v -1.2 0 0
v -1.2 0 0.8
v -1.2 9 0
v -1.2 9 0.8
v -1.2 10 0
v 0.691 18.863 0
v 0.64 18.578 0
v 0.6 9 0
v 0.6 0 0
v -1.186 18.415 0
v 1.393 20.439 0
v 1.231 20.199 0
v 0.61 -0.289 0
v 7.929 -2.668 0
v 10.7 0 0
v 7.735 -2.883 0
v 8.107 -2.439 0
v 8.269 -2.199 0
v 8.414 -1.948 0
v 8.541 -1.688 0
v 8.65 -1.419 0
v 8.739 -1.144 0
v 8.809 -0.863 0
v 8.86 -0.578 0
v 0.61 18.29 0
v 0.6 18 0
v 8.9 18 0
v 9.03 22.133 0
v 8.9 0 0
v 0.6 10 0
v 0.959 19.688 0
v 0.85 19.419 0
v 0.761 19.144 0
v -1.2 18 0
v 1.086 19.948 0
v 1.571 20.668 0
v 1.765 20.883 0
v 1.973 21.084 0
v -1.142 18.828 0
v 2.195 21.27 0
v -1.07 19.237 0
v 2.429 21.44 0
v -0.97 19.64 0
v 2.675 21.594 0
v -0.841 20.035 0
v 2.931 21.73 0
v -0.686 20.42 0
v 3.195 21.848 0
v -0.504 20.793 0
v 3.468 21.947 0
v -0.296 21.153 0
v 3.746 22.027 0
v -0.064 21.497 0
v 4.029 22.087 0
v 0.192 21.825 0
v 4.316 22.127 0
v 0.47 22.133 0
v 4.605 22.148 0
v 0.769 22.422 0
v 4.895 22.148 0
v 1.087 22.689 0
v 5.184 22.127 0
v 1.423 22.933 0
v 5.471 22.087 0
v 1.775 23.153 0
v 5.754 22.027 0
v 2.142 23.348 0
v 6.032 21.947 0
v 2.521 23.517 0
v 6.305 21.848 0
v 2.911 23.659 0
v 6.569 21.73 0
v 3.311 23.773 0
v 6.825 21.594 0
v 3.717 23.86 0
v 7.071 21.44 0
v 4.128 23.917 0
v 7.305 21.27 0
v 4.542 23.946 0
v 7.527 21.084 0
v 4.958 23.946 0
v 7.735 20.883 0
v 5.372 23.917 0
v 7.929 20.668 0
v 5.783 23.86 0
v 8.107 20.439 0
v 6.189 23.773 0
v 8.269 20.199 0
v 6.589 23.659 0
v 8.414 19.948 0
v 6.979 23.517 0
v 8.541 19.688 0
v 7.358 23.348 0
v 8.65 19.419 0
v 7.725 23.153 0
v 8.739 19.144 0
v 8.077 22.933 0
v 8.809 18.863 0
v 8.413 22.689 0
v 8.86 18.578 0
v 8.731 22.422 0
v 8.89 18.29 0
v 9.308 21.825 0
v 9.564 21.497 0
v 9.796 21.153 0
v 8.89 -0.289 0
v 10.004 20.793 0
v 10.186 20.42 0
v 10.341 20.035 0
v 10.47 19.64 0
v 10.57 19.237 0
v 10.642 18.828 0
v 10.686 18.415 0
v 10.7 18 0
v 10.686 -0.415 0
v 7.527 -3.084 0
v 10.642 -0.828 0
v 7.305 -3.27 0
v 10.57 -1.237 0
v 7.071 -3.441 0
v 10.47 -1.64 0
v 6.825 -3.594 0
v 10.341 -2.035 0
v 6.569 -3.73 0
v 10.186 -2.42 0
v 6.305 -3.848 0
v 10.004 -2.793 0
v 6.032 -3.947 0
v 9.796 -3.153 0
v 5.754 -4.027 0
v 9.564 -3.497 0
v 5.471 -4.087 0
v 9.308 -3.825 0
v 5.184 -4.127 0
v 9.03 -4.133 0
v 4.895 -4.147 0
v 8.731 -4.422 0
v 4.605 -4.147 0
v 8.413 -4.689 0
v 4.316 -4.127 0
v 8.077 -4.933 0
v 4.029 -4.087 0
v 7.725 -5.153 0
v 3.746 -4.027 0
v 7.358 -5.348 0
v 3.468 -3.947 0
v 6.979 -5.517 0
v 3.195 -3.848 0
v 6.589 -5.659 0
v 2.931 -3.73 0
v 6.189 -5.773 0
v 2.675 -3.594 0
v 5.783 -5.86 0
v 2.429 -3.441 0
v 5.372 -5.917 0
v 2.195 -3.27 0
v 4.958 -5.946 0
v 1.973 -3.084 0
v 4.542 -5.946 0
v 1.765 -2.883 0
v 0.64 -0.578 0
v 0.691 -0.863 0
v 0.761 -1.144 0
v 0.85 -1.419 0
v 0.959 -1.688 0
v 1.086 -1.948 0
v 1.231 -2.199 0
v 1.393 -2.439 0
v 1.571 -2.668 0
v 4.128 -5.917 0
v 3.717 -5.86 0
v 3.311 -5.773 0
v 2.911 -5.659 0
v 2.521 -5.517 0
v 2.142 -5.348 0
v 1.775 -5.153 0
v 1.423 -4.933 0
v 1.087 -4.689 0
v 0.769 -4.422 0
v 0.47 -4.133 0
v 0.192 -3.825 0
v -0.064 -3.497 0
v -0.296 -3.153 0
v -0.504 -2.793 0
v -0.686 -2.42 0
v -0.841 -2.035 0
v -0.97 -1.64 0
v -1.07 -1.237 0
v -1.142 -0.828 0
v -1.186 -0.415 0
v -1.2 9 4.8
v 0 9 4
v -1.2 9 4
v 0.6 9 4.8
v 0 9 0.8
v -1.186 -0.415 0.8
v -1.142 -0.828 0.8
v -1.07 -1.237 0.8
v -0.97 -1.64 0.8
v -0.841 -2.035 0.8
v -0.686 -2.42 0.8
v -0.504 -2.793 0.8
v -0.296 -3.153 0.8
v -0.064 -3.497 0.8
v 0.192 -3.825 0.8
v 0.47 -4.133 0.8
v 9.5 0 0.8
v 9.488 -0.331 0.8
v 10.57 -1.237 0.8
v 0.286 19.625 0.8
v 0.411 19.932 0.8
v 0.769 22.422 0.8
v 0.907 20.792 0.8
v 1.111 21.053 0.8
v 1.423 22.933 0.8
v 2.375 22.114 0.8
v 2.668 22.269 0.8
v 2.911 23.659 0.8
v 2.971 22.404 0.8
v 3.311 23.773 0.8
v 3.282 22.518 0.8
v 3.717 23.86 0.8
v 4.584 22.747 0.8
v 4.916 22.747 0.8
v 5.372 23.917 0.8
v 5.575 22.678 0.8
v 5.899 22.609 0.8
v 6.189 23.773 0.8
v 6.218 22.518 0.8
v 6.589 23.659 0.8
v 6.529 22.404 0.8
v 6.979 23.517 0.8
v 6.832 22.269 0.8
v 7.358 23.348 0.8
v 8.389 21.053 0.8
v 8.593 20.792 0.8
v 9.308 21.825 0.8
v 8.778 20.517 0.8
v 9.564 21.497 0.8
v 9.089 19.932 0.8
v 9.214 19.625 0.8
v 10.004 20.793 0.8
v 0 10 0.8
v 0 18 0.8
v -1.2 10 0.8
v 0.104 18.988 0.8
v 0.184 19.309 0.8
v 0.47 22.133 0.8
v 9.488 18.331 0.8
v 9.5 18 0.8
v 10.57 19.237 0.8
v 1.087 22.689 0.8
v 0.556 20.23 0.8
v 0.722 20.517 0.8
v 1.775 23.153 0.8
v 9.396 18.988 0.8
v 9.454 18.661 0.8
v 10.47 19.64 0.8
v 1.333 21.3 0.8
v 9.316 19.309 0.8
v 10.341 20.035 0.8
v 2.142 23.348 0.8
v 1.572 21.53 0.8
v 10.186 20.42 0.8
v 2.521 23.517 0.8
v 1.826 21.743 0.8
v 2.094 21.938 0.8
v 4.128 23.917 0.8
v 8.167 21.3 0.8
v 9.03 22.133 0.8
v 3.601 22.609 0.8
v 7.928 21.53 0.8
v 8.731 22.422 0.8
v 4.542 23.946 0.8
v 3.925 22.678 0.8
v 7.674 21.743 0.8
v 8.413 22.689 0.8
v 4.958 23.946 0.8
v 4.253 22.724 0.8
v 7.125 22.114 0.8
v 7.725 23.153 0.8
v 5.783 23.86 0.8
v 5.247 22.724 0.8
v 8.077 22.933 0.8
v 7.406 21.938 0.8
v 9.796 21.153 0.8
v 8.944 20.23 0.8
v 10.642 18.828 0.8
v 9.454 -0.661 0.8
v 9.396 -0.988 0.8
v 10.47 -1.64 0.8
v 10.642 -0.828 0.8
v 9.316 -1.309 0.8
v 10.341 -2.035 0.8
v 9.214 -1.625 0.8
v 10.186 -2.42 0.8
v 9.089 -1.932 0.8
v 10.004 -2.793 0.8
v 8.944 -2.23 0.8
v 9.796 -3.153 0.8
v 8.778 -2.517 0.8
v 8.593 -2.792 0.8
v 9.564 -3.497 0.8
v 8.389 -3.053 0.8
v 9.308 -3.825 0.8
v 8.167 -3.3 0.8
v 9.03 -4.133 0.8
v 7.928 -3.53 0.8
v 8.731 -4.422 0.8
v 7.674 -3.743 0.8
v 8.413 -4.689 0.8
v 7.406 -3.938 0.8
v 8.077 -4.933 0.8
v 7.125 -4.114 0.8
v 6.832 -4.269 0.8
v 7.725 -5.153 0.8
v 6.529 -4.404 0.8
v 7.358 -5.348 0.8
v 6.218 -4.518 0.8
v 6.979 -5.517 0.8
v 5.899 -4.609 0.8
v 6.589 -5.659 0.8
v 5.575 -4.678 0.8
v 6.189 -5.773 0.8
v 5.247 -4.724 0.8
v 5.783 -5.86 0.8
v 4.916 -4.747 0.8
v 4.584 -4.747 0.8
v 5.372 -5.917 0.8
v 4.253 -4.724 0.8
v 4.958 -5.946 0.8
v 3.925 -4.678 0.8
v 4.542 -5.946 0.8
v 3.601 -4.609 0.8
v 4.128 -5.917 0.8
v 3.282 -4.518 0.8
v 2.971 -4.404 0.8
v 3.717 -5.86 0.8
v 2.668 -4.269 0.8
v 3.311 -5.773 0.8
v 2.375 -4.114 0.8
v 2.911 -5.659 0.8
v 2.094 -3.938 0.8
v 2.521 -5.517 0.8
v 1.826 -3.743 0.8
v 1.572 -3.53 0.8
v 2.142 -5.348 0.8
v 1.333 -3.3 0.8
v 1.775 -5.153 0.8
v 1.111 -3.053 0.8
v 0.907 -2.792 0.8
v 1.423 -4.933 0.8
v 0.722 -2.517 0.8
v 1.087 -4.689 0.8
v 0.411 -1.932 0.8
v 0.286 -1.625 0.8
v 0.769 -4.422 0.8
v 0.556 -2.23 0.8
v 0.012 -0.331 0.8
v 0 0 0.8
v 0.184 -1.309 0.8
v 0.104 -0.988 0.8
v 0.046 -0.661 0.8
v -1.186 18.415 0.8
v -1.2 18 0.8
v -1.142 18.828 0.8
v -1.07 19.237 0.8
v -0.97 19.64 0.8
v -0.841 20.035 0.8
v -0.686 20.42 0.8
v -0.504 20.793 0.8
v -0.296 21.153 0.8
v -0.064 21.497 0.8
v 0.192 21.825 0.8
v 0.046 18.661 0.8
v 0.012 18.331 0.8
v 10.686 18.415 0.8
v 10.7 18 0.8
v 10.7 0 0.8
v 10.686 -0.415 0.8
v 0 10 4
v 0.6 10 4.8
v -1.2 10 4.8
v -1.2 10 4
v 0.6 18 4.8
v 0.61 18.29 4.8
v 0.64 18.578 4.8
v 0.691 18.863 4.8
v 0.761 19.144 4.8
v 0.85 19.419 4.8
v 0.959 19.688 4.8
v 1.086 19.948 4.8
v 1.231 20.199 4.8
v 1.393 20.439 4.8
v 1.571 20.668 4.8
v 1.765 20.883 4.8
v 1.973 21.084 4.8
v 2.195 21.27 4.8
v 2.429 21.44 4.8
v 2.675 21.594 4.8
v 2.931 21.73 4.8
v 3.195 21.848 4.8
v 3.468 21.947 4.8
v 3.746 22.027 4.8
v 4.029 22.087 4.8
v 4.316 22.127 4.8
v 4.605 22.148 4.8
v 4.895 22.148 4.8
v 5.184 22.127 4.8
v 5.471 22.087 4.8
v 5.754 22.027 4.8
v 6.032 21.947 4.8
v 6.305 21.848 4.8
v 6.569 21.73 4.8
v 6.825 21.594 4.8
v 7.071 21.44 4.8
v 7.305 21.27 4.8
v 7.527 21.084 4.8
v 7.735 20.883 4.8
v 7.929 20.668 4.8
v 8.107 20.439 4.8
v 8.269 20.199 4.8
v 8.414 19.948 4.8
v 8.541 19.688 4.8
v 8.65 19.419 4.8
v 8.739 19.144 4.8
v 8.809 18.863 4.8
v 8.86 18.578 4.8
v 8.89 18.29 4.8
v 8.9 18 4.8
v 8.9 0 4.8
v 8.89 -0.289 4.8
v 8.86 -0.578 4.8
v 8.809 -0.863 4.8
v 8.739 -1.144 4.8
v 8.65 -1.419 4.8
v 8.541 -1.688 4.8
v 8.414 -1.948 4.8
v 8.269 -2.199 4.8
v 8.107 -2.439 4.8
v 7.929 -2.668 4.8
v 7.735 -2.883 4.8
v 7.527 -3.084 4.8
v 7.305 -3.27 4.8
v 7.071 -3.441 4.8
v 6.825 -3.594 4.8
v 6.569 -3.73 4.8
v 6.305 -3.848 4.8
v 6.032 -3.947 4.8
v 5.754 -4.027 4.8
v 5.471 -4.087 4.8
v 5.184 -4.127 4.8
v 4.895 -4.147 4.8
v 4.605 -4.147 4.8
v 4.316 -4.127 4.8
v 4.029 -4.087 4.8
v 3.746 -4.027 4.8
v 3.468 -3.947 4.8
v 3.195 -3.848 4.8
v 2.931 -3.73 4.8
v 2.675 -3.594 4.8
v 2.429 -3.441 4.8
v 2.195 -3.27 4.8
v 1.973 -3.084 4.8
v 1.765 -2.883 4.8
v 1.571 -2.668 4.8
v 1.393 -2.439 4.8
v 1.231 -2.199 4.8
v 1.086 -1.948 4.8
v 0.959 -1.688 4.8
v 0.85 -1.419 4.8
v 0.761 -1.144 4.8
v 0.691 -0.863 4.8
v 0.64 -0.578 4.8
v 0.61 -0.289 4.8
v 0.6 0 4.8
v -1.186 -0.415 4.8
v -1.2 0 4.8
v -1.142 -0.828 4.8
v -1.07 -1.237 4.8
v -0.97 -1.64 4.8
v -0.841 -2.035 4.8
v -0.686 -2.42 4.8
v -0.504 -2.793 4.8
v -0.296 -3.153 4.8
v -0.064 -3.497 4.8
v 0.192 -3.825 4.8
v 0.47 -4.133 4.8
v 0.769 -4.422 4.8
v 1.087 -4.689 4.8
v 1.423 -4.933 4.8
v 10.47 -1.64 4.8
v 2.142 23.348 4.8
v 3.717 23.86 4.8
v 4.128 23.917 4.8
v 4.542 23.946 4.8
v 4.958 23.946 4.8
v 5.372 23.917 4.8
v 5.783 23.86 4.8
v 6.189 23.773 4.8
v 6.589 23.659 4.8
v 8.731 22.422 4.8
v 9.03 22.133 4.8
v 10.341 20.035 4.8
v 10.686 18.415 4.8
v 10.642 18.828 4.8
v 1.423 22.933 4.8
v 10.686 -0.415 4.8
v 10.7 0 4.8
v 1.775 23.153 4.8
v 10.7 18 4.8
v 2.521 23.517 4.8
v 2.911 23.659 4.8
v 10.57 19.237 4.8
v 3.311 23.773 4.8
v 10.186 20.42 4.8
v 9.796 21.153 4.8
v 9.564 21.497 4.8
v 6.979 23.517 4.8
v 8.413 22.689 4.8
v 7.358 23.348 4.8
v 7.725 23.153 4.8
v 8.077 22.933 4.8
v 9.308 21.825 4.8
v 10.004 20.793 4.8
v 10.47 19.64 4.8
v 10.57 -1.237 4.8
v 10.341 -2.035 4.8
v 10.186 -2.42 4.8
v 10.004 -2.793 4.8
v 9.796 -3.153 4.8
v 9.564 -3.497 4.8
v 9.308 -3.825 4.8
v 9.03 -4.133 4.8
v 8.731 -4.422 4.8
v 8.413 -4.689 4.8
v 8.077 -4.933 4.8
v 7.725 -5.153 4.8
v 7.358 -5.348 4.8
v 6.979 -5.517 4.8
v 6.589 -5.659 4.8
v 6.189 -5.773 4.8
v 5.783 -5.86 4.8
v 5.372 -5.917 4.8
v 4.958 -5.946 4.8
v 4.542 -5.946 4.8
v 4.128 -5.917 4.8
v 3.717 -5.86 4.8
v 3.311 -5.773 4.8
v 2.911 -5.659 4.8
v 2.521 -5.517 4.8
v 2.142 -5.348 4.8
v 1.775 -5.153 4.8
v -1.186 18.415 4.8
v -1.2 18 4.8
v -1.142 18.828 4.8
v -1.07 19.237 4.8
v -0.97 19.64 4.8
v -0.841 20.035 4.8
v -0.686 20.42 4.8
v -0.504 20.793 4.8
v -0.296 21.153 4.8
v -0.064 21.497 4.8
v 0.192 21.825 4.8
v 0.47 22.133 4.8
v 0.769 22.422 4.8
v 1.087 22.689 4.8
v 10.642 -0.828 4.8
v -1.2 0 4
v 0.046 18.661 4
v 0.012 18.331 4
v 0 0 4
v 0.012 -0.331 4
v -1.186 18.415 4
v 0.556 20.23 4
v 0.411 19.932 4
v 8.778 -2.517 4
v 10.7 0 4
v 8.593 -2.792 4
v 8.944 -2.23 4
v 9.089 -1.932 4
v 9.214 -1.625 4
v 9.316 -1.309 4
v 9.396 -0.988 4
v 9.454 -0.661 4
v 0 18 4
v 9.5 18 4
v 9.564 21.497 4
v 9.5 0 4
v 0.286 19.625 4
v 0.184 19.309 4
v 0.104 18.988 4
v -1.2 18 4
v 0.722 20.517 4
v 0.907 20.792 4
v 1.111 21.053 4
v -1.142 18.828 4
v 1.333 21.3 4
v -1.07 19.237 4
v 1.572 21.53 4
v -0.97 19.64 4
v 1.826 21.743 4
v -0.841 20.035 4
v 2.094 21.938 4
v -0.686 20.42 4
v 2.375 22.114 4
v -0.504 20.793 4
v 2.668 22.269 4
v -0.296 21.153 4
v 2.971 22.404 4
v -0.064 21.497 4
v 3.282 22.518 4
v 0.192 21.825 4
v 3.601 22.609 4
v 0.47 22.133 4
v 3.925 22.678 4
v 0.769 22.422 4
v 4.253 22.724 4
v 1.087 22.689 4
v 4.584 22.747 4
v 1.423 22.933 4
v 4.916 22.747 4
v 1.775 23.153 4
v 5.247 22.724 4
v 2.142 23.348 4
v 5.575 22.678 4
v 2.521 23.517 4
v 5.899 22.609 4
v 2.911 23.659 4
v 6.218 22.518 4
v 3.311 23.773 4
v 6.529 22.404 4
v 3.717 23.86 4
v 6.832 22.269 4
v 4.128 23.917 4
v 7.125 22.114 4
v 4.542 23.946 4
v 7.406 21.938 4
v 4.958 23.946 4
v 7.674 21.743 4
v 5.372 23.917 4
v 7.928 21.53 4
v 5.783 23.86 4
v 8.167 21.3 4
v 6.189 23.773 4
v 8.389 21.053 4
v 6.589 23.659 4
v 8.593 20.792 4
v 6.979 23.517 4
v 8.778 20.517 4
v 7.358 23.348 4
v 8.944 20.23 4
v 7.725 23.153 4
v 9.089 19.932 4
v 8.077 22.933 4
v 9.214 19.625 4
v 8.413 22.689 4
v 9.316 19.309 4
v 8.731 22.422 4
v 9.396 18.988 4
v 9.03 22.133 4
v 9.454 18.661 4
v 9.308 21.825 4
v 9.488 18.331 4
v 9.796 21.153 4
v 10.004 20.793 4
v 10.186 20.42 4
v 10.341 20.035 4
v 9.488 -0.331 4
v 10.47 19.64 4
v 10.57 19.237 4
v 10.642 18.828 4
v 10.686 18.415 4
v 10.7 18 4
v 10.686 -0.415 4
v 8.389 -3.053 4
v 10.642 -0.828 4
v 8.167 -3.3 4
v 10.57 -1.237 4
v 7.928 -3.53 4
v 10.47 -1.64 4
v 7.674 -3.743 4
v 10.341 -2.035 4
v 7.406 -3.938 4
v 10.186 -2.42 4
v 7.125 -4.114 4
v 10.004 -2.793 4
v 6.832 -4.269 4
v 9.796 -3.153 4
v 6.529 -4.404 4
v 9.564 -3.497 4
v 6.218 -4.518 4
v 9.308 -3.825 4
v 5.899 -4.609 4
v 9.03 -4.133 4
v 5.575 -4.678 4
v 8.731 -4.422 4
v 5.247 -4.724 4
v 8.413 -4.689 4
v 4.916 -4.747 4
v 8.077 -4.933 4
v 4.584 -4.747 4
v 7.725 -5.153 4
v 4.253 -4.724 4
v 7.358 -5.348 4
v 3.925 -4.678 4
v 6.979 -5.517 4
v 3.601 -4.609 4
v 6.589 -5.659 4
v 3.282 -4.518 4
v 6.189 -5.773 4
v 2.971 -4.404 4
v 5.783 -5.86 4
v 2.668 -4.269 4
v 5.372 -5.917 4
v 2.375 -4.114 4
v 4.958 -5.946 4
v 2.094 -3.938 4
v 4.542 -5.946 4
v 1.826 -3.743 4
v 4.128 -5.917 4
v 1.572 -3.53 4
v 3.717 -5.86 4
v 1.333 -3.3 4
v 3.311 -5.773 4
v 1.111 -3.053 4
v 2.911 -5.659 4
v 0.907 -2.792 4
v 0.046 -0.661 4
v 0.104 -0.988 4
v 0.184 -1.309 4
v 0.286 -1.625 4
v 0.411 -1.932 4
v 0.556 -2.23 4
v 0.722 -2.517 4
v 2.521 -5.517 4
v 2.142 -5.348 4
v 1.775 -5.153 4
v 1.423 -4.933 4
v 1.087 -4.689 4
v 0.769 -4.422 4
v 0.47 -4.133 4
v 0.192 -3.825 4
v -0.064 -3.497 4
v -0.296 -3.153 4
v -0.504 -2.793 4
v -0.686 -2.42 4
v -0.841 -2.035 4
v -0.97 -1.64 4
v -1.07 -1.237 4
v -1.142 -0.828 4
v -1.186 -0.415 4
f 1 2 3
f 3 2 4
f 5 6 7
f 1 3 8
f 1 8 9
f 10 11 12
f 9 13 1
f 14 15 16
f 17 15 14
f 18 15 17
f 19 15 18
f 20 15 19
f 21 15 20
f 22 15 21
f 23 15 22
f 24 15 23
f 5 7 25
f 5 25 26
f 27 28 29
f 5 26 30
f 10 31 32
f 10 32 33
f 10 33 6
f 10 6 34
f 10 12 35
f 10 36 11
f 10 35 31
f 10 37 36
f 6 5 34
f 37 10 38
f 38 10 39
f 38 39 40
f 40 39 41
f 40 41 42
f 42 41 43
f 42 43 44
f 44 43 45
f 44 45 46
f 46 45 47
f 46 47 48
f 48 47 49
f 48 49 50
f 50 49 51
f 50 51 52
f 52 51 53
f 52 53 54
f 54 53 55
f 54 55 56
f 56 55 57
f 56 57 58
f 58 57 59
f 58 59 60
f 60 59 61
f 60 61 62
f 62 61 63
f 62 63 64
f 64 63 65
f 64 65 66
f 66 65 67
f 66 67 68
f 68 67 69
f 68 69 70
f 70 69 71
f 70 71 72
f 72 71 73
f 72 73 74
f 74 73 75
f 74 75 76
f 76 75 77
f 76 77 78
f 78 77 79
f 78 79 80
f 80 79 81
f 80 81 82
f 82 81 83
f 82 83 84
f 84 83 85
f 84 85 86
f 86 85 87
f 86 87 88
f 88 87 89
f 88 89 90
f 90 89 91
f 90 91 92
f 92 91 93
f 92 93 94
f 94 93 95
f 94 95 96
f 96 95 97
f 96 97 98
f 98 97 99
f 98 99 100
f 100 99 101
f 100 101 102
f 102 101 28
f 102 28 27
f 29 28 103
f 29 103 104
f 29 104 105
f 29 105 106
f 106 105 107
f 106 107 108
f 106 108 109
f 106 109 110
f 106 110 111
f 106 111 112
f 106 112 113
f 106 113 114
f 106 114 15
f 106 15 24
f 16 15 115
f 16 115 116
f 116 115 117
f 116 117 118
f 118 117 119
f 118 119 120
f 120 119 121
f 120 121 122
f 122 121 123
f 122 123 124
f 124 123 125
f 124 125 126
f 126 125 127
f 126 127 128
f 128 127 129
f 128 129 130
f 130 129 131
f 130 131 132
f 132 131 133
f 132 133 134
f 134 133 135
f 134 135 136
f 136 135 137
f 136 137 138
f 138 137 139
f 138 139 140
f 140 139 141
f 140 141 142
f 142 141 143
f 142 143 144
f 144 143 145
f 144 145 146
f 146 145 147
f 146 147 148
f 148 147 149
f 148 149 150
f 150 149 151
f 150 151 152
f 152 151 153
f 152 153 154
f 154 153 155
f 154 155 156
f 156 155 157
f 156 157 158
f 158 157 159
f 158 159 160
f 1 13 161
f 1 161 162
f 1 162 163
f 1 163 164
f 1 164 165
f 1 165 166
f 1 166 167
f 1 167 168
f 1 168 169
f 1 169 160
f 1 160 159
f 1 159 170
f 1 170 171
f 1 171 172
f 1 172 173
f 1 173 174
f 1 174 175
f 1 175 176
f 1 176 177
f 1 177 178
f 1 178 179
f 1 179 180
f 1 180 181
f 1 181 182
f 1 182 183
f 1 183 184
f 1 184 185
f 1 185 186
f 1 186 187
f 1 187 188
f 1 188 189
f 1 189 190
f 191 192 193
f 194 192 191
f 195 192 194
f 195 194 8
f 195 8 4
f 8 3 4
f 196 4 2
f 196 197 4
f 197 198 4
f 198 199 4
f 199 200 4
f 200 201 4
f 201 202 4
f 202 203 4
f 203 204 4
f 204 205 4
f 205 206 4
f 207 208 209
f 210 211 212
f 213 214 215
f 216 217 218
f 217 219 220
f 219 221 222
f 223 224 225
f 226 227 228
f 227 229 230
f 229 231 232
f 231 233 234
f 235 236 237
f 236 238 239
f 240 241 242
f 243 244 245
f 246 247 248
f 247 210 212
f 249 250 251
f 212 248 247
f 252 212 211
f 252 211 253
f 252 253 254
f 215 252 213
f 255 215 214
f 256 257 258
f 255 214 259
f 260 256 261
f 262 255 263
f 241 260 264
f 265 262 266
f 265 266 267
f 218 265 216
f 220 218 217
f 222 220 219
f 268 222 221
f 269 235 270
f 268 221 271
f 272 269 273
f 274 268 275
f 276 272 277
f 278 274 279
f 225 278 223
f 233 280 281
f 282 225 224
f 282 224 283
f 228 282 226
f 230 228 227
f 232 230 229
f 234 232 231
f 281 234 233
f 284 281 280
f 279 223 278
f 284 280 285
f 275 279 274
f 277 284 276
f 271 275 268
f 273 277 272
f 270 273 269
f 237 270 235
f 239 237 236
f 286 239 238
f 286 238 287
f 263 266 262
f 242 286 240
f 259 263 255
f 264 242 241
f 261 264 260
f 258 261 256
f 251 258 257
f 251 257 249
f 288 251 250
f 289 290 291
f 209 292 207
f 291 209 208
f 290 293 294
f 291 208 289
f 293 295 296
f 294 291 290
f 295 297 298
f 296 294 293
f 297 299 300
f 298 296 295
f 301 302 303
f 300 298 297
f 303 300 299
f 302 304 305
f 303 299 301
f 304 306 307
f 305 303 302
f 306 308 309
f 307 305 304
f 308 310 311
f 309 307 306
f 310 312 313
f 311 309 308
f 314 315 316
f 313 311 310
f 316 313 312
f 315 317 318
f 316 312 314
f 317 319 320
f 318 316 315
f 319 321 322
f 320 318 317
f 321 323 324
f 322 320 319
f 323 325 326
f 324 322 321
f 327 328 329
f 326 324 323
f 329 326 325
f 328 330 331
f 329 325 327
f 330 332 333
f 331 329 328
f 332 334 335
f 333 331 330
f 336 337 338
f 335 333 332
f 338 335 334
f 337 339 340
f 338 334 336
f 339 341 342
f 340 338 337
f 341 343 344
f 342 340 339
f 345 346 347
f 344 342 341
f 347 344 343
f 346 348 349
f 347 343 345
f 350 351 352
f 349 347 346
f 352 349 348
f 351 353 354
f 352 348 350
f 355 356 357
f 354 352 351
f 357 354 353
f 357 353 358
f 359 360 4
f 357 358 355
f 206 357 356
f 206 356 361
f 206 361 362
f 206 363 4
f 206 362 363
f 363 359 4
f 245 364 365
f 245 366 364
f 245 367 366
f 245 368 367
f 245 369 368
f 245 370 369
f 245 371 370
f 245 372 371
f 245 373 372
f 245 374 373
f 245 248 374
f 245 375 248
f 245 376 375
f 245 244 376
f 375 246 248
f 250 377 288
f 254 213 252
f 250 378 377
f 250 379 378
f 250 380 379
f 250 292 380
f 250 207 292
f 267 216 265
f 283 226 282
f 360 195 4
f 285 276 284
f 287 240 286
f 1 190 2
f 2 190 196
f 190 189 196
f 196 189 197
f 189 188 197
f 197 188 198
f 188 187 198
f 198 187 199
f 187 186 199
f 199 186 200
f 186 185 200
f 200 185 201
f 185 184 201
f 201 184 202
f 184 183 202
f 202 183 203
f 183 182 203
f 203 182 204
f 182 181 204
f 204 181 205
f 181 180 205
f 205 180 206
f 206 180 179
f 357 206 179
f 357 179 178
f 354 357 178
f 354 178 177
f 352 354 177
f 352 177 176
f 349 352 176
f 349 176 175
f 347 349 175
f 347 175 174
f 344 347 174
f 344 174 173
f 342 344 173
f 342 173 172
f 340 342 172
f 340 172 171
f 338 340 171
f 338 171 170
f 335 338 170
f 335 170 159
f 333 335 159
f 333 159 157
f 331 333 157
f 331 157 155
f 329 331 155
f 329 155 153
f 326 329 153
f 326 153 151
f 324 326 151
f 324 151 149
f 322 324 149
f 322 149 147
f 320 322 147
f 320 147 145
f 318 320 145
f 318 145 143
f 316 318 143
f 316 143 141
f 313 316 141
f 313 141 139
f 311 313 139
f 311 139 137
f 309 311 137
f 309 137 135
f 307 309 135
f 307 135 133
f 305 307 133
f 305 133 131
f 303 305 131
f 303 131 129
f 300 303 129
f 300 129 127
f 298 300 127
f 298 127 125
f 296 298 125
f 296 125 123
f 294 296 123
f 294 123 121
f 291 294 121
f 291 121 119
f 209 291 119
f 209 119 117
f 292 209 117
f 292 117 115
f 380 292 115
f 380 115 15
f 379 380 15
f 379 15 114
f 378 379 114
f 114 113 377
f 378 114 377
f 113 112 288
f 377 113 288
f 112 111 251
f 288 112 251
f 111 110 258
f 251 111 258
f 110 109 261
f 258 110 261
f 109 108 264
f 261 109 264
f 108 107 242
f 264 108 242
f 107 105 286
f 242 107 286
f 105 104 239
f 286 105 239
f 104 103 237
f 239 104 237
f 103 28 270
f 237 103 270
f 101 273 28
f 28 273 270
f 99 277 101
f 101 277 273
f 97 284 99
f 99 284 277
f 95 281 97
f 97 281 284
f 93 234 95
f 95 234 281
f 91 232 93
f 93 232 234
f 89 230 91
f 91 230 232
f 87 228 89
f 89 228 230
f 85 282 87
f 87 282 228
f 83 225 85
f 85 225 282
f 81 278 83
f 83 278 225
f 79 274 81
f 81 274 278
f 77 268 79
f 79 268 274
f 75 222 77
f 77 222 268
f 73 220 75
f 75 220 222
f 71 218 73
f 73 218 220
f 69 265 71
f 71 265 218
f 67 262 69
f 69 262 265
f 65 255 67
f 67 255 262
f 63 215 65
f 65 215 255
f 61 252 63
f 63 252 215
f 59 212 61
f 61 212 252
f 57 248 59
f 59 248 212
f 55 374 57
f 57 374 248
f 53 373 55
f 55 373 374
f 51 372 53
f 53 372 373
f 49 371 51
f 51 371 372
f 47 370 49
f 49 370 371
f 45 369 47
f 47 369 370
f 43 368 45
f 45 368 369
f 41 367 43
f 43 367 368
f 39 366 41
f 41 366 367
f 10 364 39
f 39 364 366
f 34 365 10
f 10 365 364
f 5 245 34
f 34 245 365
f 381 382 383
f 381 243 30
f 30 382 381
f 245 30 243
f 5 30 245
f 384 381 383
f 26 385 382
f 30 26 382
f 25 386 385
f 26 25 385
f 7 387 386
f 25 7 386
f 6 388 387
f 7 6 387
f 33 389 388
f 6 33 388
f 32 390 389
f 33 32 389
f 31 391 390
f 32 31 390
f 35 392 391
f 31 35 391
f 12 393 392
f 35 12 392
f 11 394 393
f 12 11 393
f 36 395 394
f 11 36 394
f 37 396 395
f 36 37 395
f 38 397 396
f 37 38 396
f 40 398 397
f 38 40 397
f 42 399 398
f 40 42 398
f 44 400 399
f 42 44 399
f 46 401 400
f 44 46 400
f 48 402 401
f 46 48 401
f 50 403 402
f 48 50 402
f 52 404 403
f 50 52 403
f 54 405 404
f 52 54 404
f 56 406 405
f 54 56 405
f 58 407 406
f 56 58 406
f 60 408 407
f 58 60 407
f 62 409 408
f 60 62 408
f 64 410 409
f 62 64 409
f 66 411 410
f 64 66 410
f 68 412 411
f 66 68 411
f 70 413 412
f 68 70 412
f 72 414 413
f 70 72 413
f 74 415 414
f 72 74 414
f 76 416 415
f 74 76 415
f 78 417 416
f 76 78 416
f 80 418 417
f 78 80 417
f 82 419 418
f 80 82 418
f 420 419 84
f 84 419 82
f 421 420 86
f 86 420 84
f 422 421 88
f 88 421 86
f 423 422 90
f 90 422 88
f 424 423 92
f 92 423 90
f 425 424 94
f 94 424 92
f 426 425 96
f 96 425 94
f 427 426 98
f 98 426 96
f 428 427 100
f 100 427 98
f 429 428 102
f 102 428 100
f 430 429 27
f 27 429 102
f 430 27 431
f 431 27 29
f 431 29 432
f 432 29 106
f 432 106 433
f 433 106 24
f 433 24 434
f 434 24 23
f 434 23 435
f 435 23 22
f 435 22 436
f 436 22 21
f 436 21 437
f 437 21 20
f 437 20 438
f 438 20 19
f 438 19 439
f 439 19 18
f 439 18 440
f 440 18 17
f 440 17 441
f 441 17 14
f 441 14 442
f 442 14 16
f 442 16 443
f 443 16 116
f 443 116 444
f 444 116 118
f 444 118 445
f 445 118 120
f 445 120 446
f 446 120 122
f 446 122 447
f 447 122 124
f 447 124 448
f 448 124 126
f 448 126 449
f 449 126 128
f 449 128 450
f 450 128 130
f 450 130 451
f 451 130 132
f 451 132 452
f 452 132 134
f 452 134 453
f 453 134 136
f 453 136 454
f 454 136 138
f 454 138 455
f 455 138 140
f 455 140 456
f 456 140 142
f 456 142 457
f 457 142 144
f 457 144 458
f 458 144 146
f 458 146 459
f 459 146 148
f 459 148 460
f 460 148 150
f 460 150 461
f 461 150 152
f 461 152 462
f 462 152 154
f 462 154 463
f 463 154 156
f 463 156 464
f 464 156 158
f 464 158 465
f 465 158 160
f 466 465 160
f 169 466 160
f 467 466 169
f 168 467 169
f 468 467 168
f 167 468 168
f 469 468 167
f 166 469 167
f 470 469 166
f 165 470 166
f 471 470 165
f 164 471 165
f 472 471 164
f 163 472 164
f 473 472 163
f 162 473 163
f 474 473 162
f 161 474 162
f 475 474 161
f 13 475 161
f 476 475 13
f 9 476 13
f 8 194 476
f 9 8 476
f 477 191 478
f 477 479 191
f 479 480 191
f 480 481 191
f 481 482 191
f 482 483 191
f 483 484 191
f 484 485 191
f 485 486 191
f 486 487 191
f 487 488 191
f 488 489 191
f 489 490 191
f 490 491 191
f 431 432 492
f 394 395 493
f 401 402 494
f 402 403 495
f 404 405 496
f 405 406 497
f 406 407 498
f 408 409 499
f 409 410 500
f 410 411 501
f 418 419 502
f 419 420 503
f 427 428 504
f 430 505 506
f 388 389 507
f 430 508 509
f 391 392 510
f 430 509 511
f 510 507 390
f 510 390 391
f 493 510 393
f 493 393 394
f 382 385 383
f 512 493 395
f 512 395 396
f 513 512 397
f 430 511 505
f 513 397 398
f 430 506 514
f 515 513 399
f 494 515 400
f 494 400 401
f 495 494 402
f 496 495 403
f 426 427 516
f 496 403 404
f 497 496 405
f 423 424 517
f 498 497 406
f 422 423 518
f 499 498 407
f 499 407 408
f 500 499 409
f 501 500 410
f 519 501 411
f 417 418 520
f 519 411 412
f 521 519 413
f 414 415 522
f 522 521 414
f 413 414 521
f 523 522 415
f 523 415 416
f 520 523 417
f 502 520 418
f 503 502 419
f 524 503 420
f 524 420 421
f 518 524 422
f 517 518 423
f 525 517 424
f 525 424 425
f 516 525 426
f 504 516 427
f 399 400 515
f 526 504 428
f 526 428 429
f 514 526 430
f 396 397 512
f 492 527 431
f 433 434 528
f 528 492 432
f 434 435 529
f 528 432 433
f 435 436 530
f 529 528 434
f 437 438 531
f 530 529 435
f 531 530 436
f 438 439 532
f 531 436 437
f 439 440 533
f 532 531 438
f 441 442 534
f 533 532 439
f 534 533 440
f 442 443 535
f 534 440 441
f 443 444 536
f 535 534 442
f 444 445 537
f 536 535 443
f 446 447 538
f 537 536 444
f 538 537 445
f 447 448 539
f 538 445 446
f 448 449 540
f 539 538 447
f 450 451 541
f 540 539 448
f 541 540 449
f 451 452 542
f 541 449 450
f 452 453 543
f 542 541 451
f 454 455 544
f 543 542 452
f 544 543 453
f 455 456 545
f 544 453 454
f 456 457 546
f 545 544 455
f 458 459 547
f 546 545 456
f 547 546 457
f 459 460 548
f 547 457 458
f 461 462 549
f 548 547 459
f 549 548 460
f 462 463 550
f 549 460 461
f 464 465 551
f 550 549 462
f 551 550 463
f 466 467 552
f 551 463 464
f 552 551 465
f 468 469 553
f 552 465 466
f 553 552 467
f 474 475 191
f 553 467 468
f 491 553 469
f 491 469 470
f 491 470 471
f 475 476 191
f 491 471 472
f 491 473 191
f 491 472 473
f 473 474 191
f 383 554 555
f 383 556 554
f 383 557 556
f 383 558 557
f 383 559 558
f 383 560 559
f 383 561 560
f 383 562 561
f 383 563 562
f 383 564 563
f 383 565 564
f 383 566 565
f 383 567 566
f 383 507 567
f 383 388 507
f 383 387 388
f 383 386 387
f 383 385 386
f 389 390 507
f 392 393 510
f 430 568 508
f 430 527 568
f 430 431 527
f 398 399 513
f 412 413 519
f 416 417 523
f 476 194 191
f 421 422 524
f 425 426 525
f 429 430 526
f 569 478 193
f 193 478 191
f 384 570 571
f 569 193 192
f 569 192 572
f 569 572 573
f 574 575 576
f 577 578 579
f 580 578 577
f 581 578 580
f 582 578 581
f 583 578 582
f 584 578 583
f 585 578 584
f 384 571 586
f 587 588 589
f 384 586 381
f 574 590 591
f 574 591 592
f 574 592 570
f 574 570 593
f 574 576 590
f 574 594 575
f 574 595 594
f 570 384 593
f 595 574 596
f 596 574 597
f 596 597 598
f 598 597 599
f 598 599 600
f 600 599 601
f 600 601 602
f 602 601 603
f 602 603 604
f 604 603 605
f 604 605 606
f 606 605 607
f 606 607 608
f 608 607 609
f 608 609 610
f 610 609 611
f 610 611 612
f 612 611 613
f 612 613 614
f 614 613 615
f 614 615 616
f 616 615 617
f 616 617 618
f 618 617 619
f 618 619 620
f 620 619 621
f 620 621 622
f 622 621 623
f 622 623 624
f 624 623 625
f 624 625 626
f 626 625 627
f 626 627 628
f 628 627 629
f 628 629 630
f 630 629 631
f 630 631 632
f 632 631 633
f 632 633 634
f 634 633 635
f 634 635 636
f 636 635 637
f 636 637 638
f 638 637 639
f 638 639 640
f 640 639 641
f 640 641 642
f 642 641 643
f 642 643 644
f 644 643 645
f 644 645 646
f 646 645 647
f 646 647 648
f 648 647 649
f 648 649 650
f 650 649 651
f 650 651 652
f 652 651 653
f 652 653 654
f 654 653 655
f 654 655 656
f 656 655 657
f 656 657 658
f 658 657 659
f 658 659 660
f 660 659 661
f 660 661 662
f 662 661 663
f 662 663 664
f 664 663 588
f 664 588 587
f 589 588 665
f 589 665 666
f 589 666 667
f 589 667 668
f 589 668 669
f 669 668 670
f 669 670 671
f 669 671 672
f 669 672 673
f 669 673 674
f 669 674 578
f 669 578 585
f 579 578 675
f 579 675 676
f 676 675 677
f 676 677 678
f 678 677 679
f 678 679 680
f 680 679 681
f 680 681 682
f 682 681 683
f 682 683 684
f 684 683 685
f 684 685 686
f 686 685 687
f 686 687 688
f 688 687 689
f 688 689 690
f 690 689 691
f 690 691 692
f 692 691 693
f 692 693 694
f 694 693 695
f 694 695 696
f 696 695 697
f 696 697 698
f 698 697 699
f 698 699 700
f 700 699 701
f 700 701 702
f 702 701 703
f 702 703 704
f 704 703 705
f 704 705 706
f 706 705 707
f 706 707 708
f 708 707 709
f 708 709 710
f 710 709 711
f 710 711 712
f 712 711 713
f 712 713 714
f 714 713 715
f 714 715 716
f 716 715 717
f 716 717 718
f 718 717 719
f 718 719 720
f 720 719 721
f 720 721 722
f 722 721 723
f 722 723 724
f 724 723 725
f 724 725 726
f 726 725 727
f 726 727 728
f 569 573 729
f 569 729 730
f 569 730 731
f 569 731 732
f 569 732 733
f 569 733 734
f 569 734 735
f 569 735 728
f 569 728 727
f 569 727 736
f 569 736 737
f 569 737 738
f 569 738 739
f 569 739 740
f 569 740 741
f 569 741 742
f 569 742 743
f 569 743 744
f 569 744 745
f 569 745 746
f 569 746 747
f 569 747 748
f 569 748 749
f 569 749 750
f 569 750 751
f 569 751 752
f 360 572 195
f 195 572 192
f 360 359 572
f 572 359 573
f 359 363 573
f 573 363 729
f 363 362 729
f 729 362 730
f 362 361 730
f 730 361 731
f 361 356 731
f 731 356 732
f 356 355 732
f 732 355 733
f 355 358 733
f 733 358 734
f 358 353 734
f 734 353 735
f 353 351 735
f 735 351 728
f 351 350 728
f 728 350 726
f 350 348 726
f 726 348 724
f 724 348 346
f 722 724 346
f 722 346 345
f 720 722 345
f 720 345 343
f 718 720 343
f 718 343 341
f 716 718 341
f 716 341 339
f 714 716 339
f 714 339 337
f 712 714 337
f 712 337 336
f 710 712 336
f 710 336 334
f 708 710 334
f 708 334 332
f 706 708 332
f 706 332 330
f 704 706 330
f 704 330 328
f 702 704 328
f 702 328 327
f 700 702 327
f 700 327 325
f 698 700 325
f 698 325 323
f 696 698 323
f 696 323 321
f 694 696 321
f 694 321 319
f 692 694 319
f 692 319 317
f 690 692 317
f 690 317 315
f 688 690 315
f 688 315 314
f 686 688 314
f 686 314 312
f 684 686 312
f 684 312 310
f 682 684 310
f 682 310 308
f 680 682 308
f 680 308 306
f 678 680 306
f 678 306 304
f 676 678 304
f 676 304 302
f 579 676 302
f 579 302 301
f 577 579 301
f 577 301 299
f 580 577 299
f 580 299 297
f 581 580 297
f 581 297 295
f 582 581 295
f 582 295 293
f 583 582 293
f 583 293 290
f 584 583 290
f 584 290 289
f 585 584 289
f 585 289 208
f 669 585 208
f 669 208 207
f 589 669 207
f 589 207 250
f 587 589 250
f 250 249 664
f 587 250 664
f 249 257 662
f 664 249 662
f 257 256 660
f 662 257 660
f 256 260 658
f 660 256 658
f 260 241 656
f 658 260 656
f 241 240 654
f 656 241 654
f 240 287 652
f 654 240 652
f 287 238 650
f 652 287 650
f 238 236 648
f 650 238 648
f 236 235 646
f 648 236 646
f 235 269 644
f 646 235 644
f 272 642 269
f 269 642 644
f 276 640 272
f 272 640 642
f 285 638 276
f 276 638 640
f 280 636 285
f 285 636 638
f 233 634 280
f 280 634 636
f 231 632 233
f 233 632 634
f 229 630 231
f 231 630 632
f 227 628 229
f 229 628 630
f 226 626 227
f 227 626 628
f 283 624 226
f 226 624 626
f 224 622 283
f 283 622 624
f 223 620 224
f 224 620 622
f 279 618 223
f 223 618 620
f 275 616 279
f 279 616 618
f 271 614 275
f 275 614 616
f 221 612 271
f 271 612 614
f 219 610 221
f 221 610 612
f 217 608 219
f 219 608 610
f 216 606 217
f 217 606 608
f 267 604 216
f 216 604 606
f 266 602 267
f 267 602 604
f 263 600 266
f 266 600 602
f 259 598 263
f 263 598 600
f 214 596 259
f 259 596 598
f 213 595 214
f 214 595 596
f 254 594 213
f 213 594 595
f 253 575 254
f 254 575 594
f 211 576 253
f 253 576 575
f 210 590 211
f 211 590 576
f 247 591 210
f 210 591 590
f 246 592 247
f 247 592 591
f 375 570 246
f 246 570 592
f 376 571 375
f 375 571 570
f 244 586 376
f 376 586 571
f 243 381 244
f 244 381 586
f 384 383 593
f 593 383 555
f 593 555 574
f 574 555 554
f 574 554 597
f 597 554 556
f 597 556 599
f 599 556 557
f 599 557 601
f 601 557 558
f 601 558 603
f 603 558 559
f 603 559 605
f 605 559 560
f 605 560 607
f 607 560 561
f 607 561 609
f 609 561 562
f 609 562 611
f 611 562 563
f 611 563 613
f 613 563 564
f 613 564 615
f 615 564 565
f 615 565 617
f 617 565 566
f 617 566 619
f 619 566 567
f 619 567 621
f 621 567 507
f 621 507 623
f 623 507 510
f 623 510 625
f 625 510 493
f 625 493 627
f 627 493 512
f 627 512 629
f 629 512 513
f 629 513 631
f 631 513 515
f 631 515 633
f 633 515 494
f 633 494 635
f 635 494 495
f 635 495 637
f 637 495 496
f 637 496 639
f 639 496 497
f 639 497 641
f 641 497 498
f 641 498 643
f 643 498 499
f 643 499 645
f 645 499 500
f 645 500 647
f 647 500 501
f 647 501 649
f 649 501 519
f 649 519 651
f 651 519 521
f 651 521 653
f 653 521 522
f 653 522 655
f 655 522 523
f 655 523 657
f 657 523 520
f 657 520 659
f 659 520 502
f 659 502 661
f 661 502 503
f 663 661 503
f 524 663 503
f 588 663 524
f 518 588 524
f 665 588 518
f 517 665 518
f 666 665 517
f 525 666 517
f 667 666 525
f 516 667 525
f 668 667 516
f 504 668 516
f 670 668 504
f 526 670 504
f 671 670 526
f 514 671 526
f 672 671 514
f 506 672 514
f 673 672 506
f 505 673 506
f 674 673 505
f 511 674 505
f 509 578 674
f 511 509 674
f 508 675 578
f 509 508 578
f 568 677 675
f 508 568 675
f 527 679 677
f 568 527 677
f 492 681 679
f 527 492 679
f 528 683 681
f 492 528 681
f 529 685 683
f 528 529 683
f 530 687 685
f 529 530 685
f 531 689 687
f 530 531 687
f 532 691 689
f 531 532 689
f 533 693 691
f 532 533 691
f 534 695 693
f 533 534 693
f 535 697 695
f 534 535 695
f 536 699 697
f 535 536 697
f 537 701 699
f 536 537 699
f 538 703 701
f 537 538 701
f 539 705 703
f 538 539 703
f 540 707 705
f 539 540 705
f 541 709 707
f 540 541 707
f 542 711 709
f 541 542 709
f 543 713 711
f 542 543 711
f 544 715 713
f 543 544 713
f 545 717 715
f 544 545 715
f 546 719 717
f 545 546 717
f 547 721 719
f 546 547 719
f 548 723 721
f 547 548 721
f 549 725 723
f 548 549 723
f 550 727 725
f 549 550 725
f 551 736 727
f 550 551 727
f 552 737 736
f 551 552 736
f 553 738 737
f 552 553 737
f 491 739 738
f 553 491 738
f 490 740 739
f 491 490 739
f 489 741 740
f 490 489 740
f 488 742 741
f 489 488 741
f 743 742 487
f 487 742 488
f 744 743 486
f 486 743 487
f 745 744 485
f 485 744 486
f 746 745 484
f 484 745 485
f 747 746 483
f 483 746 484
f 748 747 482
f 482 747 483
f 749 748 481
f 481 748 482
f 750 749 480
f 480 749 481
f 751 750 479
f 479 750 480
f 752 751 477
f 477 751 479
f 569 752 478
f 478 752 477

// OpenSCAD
/*
 * Copyright 2014 Kenny Root.
 * Licensed under the BSD license. See LICENSE for more information.
 *
 * Grommet for the central hole on the RigidBot dual extruder plate.
 */

// Adjustable features.
lip_height = 0.8;
lip_overhang = 1.2;
wall_thickness = 0.6;

// measurements of the opening
opening_width=9.5;
opening_length=27.5;
opening_height=3.2;

// render settings
$fs = 0.2;
$fa = 4;

/*
 * Creates a rounded rectangle where the ends are half-circles.
 */
module roundrect(width, length, height) {
	assign(cube_length = length - width) {
		union() {
			cube([width, cube_length, height]);
			translate([width/2, 0, 0]) cylinder(d=width, h=height);
			translate([width/2, cube_length, 0]) cylinder(d=width, h=height);
		}
	}
}

difference() {
	// The things that exist
	union() {
		roundrect(opening_width, opening_length, opening_height+2*lip_height);
		for (a=[0, 3.2+lip_height]) {
			translate([-lip_overhang, 0, a])
				assign(lip=lip_overhang*2)
					roundrect(opening_width+lip, opening_length+lip, lip_height);
		}
	}

	// Things subtracted out.
	union() {
		translate([wall_thickness,0,-0.1])
			assign(wall=2*wall_thickness, lip=2*lip_height)
				roundrect(opening_width-wall, opening_length-wall, opening_height+lip+0.2);

		// A little notch so it can be fit into the hole.
		translate([-2, 9, -1]) cube([5, 1, 10]);
	}
}
